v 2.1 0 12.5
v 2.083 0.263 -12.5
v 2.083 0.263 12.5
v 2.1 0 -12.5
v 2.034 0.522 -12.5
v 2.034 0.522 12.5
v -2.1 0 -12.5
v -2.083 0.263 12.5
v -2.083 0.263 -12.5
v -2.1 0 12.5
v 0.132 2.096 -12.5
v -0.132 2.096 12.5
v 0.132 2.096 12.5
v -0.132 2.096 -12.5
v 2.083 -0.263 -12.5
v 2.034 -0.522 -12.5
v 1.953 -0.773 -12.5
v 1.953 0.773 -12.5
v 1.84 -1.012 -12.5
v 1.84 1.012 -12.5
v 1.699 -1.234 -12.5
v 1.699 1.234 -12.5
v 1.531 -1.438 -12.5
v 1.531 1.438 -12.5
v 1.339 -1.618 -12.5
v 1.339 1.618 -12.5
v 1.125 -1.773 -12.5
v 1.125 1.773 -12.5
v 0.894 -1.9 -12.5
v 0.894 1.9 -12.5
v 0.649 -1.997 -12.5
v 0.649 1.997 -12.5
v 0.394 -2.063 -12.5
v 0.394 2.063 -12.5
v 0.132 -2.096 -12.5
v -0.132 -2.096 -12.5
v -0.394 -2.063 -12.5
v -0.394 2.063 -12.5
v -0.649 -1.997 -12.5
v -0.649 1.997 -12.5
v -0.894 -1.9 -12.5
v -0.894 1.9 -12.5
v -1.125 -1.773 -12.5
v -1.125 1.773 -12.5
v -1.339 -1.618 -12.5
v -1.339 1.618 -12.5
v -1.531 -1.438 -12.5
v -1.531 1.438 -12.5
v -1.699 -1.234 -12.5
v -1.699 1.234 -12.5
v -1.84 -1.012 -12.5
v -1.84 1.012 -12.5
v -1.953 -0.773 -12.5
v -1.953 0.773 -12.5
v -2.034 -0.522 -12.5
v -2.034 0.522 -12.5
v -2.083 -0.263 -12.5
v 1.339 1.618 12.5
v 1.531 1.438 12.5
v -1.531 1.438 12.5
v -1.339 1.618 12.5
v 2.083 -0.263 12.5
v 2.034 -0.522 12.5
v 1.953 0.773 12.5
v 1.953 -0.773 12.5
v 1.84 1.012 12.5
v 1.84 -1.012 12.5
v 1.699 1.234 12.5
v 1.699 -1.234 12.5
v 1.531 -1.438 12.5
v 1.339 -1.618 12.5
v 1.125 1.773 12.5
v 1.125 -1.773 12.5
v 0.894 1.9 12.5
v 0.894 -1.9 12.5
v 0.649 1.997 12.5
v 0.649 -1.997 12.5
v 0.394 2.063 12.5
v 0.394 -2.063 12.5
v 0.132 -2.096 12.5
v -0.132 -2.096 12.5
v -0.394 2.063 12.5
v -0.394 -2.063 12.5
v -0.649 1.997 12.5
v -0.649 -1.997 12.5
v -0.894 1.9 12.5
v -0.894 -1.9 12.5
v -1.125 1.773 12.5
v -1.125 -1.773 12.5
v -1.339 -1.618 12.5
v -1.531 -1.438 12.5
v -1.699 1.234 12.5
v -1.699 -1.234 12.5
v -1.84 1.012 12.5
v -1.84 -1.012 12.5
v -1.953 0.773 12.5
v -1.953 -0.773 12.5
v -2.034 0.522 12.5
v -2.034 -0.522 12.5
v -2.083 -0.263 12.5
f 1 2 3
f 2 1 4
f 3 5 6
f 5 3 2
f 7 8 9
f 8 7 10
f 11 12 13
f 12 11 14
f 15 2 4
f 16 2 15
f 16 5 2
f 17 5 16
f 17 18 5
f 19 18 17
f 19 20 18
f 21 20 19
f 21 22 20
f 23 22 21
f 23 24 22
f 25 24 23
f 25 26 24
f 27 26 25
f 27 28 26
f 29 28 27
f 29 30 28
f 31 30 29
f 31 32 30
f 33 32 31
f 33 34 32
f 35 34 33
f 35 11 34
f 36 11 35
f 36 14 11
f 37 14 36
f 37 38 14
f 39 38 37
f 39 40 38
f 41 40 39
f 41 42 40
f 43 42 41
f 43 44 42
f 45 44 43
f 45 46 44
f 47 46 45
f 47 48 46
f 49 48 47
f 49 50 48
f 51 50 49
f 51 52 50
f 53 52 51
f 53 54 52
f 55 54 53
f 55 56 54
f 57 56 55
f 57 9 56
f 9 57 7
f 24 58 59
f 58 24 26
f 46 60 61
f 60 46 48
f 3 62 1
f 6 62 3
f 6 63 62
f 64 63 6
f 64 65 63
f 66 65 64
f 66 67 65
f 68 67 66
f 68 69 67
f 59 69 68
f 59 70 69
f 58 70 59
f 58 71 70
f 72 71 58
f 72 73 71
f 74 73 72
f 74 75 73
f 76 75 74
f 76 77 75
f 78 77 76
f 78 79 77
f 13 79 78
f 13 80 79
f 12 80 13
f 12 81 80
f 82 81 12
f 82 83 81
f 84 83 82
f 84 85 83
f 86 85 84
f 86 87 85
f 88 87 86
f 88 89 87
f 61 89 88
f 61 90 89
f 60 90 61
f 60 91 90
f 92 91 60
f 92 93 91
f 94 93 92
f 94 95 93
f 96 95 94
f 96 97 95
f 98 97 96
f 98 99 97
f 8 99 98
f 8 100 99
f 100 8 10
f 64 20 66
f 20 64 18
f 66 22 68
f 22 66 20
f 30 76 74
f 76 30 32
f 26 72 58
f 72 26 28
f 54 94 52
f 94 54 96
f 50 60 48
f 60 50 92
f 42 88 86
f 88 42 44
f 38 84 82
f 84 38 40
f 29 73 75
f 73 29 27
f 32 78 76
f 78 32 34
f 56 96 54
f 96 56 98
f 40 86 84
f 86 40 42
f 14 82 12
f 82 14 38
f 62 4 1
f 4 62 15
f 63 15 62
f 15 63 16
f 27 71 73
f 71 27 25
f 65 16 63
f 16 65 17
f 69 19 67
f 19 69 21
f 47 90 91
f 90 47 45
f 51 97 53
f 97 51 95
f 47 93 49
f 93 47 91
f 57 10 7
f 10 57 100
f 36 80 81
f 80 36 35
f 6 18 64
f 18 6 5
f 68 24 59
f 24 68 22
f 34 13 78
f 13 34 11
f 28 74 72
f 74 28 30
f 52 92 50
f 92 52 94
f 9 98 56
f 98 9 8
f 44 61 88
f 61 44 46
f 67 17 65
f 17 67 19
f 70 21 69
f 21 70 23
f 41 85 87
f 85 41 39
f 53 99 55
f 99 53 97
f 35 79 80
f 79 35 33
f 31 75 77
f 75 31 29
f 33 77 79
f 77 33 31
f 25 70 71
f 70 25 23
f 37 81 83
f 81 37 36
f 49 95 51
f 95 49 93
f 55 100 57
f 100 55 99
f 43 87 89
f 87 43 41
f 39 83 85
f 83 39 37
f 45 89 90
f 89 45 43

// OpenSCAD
$fn = 50;


difference() {
	union() {
		translate(v = [0, 0, -12.5000000000]) {
			cylinder(h = 25, r = 2.1000000000);
		}
	}
	union() {
		translate(v = [0, 0, -100.0000000000]) {
			cylinder(h = 200, r = 0);
		}
	}
}
